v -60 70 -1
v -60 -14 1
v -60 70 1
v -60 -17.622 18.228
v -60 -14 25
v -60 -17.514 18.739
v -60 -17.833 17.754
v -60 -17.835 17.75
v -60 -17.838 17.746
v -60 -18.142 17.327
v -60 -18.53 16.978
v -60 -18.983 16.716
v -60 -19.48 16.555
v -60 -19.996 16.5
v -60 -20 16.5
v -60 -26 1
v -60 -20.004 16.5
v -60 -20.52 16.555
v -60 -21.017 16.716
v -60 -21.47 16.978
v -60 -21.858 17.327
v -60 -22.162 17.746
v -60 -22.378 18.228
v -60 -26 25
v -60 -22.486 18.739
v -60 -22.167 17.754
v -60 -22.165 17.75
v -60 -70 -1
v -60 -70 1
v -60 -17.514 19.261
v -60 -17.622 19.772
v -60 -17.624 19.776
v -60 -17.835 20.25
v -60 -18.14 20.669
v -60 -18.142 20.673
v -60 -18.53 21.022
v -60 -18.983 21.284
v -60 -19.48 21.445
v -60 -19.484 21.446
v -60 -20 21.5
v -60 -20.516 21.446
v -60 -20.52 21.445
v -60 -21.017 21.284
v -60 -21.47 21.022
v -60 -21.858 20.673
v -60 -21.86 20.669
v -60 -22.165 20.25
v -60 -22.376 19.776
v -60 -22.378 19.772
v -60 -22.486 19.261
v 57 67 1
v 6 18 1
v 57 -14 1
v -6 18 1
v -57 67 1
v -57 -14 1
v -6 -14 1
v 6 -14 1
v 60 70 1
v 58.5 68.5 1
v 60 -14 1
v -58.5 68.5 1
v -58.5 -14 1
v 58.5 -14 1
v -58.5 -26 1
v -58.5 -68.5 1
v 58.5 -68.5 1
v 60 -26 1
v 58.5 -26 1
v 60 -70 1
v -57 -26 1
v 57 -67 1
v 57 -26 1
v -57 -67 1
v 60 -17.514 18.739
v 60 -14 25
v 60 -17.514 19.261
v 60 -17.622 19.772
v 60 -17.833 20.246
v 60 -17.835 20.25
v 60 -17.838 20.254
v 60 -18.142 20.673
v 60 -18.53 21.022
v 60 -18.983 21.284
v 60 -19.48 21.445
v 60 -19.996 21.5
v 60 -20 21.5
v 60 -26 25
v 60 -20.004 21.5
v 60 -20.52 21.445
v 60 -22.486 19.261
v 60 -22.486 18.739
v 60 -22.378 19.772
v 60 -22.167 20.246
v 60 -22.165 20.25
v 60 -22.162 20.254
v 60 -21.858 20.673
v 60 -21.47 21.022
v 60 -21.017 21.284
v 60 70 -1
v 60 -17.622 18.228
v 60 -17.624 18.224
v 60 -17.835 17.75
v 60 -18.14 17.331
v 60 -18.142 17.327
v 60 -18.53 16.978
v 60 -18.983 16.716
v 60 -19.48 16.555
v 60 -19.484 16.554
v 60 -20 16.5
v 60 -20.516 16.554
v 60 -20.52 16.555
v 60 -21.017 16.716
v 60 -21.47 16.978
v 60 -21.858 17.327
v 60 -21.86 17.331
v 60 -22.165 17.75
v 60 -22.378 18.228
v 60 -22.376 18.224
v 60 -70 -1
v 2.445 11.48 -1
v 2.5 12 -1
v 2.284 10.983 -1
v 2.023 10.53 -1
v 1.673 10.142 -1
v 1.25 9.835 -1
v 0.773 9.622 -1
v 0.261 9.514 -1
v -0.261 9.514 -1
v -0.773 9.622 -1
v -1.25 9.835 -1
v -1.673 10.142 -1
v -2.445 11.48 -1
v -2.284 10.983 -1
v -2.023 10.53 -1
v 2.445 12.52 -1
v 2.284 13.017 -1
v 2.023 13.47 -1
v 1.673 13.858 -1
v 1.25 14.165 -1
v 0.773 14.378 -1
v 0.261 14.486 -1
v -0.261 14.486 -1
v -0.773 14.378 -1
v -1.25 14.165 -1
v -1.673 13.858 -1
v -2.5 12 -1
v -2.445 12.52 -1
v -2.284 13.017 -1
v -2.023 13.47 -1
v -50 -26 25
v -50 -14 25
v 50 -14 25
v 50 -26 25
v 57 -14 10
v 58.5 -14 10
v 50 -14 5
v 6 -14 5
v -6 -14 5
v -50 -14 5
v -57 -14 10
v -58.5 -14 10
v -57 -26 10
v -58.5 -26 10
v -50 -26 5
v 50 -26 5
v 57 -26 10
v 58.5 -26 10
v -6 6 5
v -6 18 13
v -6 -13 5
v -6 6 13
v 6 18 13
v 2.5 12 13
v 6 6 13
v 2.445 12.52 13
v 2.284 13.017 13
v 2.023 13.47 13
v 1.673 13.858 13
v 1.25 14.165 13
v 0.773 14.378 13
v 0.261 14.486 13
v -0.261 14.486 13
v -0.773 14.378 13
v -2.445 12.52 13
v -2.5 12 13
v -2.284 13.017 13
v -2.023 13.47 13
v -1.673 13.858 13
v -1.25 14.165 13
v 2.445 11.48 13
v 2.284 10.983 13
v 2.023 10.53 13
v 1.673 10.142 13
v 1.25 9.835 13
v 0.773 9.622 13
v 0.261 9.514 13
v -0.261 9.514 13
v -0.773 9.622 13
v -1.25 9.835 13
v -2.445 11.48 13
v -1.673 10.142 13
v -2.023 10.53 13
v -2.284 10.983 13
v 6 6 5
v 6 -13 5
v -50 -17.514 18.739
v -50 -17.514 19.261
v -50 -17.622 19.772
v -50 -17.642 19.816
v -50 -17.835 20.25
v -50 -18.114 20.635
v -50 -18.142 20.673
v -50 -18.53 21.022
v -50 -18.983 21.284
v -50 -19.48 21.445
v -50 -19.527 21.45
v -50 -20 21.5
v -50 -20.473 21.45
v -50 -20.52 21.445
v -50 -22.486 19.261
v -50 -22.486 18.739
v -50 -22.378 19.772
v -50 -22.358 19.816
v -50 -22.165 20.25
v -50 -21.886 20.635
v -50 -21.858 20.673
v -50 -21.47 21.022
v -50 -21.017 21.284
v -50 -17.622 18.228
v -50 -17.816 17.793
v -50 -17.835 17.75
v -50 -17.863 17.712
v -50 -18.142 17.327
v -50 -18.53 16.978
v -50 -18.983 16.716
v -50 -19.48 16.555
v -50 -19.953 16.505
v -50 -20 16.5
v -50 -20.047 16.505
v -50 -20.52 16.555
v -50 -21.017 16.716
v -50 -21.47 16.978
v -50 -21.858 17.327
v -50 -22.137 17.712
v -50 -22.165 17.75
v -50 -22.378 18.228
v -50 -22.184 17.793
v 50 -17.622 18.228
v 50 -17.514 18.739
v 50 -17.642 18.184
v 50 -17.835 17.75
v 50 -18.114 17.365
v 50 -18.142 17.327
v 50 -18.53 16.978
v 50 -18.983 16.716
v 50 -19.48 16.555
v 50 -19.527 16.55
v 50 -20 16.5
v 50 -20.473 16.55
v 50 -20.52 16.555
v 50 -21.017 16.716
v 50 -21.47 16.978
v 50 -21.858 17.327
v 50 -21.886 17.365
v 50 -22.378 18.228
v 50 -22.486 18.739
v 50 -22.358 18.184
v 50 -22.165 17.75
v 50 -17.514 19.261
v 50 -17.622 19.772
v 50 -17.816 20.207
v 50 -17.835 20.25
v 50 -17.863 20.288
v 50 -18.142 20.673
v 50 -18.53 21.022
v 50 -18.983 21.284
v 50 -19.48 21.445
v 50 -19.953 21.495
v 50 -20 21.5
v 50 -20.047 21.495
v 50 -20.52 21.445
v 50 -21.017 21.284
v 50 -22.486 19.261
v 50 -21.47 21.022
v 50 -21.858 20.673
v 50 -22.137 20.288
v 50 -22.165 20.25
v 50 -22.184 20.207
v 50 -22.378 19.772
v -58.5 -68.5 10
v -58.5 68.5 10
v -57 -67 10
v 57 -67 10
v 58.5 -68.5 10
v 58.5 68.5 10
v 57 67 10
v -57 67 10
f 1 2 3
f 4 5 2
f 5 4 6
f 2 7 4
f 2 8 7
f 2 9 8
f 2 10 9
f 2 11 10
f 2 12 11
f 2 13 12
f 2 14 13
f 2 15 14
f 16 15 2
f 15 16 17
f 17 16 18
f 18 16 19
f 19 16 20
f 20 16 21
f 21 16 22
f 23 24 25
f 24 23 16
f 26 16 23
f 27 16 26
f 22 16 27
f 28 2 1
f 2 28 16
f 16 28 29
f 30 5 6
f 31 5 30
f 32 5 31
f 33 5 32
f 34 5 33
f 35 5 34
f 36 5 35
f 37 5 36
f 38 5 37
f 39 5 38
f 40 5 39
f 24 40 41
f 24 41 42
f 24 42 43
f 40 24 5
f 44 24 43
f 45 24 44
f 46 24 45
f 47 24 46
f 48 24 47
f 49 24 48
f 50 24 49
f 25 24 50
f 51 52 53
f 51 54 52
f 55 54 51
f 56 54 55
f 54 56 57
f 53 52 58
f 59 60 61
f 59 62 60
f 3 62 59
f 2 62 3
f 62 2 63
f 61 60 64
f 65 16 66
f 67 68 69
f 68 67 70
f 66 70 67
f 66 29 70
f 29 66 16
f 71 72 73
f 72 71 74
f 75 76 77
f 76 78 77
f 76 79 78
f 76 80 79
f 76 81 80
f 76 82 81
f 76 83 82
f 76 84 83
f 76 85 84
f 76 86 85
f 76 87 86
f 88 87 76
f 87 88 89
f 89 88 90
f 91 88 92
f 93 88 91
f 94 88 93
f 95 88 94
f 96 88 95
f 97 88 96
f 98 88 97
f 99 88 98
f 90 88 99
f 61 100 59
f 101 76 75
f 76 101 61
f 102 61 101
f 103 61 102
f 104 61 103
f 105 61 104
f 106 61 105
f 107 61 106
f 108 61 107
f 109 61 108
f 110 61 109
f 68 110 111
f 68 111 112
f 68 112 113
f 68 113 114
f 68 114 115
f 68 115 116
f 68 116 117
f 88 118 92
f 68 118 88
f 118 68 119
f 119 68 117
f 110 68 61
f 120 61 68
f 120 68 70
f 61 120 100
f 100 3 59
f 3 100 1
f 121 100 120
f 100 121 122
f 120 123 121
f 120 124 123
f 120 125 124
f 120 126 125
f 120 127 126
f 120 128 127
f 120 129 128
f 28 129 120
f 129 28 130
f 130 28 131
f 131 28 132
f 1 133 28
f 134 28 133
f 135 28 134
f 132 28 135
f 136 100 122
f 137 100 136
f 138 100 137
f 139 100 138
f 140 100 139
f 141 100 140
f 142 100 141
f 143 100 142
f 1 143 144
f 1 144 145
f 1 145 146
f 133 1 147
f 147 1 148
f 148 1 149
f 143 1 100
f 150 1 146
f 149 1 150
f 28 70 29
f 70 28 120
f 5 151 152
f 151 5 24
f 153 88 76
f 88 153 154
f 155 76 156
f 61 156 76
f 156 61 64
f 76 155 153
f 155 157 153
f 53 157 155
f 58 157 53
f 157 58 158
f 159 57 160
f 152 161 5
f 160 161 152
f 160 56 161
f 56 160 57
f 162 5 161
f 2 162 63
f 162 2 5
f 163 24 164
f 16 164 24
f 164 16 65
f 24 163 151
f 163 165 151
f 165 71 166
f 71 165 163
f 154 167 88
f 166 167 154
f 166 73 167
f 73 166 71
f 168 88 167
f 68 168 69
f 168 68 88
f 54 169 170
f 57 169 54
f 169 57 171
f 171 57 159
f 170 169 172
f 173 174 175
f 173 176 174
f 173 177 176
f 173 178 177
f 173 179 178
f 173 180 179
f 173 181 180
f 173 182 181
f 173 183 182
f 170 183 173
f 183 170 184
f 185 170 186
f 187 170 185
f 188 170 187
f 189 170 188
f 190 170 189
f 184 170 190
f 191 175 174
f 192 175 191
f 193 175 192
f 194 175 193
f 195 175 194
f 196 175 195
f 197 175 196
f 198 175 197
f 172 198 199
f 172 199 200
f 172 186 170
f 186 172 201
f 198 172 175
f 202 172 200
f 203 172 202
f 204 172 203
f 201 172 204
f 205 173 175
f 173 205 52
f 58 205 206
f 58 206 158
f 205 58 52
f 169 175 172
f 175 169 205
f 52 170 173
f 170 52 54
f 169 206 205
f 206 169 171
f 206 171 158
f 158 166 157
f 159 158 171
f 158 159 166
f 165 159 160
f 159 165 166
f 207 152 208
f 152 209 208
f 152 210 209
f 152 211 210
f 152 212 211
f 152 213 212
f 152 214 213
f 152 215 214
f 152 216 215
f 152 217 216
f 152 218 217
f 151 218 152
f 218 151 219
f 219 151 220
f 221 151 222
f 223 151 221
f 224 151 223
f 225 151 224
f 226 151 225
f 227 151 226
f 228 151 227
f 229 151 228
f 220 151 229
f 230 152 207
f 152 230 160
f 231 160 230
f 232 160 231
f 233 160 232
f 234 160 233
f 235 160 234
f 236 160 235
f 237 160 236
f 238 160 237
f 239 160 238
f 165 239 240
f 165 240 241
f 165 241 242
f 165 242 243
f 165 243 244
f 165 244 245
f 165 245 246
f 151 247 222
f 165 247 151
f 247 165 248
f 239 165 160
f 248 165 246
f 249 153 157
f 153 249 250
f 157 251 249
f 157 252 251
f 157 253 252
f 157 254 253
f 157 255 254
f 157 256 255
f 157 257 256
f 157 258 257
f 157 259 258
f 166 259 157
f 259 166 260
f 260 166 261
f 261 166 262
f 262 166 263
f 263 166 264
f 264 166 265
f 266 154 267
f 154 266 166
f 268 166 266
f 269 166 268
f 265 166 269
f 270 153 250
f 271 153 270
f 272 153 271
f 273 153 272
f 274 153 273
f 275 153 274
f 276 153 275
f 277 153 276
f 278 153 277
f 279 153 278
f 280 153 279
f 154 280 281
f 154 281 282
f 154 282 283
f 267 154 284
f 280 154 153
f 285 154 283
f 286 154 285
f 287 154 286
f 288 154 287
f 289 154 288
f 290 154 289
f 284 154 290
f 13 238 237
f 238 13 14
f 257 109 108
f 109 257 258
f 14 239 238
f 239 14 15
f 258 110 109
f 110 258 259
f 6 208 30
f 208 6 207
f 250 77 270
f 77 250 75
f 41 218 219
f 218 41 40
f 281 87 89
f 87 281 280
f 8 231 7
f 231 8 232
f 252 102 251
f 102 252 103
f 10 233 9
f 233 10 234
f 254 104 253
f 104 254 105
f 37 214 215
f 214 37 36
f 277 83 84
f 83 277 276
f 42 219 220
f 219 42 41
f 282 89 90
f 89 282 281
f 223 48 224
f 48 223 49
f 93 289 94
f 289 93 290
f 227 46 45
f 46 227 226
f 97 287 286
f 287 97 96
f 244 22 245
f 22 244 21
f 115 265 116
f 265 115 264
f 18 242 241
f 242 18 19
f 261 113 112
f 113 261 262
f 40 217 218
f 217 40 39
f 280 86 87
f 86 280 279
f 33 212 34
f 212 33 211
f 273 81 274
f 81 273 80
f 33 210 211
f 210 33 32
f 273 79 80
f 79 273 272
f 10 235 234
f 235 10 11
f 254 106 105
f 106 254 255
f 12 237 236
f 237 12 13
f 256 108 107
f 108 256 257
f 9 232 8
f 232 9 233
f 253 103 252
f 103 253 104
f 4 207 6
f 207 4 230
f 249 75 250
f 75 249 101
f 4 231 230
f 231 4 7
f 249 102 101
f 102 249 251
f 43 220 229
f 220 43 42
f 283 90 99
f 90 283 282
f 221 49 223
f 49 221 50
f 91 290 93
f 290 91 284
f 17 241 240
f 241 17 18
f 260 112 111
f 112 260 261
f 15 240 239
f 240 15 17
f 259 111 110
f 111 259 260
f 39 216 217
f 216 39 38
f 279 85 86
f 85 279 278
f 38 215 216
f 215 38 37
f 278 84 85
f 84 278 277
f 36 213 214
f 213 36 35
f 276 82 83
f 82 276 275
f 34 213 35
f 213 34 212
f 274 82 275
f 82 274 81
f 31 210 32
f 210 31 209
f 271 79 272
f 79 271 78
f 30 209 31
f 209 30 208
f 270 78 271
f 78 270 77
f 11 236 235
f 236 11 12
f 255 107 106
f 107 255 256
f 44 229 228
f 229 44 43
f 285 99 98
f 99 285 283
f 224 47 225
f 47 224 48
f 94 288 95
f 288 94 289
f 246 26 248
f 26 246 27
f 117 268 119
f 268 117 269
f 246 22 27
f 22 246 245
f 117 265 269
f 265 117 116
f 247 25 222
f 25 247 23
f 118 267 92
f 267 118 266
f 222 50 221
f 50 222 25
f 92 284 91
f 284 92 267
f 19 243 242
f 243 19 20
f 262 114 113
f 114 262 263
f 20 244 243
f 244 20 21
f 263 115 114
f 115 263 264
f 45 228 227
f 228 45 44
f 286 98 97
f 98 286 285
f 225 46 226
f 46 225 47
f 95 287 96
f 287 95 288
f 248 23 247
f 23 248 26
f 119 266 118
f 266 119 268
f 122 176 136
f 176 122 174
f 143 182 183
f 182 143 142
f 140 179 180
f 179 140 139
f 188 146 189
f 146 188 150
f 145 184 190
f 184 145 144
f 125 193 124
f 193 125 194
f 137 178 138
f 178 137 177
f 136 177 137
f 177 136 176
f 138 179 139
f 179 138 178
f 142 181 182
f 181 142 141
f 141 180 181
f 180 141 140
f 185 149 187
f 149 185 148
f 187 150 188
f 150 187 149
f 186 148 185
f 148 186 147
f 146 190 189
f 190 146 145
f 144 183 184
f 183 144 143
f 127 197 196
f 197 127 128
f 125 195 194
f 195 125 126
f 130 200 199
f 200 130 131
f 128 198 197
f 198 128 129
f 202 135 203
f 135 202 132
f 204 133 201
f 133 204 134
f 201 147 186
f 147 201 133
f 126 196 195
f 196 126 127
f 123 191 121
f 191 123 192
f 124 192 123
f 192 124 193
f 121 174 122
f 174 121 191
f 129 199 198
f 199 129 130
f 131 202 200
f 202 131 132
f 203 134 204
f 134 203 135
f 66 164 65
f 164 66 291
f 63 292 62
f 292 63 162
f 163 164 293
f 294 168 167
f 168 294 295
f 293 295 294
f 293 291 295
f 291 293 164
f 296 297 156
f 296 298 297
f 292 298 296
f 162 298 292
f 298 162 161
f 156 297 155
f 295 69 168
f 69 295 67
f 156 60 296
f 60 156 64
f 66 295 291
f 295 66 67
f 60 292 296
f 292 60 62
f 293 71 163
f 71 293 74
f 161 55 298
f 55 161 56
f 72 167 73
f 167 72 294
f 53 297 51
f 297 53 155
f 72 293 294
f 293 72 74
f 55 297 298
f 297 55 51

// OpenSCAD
$fn=30;

difference(){

union(){
cube([120,140,2],center=true);
translate([0,-20,13])
cube([120,12,24],center=true);
translate([0,12,7])
cube([12,12,12],center=true);
translate([0,-4,2.5])
cube([12,25,5],center=true);
}

translate([0,-20,19])
cube([100,14,28],center=true);
translate([0,-20,19])rotate([0,90,0])
cylinder(d=5,h=122,center=true);
translate([0,12,7])
cylinder(d=5,h=20,center=true);
}

translate([0,0,5])
difference(){
cube([117,137,10],center=true);
cube([114,134,22],center=true);
} 
